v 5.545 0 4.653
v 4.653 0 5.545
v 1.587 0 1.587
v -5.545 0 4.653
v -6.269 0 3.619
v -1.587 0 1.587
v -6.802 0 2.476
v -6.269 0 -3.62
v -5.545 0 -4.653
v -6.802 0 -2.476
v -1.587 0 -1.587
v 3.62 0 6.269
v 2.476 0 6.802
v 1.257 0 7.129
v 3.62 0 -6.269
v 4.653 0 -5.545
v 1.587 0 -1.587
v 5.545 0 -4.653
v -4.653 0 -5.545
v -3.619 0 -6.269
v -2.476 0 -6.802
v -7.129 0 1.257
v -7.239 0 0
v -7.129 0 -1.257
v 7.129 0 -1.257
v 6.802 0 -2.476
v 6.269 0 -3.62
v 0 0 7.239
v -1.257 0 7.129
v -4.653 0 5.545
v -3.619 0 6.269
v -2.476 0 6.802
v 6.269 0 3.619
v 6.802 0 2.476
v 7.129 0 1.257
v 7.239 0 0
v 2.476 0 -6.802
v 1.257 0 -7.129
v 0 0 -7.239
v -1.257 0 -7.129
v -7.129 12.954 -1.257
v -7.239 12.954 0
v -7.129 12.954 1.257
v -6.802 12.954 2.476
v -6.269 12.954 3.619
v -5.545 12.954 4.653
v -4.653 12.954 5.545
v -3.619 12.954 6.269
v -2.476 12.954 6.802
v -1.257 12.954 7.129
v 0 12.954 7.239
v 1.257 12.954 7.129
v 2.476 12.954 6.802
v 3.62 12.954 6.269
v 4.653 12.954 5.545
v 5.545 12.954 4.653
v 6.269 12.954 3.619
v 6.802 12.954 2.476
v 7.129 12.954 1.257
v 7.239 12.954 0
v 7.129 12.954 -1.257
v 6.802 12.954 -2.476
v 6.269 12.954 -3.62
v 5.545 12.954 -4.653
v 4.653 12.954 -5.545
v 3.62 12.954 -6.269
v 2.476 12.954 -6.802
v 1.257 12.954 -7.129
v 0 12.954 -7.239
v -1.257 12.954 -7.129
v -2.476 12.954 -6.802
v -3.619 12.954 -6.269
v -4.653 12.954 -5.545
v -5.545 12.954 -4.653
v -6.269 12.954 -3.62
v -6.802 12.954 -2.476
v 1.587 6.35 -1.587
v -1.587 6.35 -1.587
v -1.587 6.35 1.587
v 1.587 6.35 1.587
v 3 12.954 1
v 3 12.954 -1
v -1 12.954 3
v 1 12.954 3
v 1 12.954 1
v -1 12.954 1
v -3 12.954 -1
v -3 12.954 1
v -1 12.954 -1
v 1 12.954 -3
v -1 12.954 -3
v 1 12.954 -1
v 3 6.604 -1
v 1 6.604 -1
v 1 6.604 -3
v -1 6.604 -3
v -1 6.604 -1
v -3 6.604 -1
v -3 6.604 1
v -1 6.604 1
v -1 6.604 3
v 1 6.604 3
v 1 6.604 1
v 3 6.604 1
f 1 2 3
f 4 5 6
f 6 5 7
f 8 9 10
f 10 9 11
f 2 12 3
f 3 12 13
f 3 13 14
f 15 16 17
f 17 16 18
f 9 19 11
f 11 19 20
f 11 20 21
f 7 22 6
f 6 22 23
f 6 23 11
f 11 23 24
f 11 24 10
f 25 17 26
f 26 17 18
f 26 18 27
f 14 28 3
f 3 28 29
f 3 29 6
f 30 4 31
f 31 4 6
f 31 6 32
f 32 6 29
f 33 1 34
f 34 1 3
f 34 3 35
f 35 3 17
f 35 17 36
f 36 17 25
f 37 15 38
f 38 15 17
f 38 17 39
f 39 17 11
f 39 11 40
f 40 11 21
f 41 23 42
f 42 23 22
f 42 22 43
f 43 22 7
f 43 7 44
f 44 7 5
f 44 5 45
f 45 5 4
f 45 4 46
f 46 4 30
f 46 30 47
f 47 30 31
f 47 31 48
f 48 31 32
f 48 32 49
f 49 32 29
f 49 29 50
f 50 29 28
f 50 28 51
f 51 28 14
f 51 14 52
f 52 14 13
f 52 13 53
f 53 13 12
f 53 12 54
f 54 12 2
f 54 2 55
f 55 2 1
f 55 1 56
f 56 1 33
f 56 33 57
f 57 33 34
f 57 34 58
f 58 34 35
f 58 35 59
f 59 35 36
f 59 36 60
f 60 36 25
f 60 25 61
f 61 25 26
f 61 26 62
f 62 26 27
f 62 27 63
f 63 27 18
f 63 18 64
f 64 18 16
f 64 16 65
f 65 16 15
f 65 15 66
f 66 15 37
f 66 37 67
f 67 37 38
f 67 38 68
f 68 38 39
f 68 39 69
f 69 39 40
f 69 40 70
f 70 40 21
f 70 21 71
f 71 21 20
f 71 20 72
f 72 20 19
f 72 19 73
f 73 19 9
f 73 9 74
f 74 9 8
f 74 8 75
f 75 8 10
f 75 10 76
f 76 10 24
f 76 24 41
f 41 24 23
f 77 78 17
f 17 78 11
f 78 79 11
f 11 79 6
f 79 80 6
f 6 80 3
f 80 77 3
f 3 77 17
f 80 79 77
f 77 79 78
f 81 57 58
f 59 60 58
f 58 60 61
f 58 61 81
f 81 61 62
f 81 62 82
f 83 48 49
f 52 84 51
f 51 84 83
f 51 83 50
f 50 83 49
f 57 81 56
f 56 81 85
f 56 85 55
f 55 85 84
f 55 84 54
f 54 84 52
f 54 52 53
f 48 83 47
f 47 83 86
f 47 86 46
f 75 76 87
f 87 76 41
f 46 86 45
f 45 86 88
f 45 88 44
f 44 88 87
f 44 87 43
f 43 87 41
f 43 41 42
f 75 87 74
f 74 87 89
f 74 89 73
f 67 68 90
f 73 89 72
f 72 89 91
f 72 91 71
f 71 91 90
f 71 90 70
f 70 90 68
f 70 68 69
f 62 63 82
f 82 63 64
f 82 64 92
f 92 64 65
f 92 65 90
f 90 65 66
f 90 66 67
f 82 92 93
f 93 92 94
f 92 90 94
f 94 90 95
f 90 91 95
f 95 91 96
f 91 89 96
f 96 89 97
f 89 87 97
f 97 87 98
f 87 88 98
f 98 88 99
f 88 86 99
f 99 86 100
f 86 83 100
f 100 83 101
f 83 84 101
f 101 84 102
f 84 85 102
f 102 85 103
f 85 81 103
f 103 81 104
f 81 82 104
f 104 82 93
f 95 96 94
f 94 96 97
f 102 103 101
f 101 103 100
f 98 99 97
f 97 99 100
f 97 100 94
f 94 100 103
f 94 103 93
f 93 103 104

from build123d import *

# Parameters (mm, degrees)
SKETCH1_R           = 7.239
SKETCH1_W           = 3.175
SKETCH1_H           = 3.175
BOSS_EXTRUDE1_DEPTH = 6.35
SKETCH2_R           = 7.239
SKETCH2_W           = 3.175
SKETCH2_H           = 3.175
BOSS_EXTRUDE2_DEPTH = 0.254
SKETCH3_R           = 7.239
BOSS_EXTRUDE3_DEPTH = 6.35


with BuildPart() as part:
    # Sketch1 → Boss-Extrude1 (new body)
    with BuildSketch(Plane(origin=(0, 0, 0), x_dir=(1, 0, 0), z_dir=(0, 1, 0))):
        Circle(SKETCH1_R)
        Rectangle(SKETCH1_W, SKETCH1_H, mode=Mode.SUBTRACT)
    extrude(amount=BOSS_EXTRUDE1_DEPTH)

    # Sketch2 → Boss-Extrude2 (add)
    with BuildSketch(Plane(origin=(0, 6.35, 0), x_dir=(1, 0, 0), z_dir=(0, 1, 0))):
        Circle(SKETCH2_R)
        Rectangle(SKETCH2_W, SKETCH2_H, mode=Mode.SUBTRACT)
        Rectangle(SKETCH2_W, SKETCH2_H)
    extrude(amount=BOSS_EXTRUDE2_DEPTH)

    # Sketch3 → Boss-Extrude3 (add)
    with BuildSketch(Plane(origin=(0, 6.604, 0), x_dir=(1, 0, 0), z_dir=(0, 1, 0))):
        Circle(SKETCH3_R)
        Polygon((-1, -1), (-3, -1), (-3, 1), (-1, 1), (-1, 3), (1, 3), (1, 1), (3, 1), (3, -1), (1, -1), (1, -3), (-1, -3), align=None, mode=Mode.SUBTRACT)
    extrude(amount=BOSS_EXTRUDE3_DEPTH)


solid = part.part
